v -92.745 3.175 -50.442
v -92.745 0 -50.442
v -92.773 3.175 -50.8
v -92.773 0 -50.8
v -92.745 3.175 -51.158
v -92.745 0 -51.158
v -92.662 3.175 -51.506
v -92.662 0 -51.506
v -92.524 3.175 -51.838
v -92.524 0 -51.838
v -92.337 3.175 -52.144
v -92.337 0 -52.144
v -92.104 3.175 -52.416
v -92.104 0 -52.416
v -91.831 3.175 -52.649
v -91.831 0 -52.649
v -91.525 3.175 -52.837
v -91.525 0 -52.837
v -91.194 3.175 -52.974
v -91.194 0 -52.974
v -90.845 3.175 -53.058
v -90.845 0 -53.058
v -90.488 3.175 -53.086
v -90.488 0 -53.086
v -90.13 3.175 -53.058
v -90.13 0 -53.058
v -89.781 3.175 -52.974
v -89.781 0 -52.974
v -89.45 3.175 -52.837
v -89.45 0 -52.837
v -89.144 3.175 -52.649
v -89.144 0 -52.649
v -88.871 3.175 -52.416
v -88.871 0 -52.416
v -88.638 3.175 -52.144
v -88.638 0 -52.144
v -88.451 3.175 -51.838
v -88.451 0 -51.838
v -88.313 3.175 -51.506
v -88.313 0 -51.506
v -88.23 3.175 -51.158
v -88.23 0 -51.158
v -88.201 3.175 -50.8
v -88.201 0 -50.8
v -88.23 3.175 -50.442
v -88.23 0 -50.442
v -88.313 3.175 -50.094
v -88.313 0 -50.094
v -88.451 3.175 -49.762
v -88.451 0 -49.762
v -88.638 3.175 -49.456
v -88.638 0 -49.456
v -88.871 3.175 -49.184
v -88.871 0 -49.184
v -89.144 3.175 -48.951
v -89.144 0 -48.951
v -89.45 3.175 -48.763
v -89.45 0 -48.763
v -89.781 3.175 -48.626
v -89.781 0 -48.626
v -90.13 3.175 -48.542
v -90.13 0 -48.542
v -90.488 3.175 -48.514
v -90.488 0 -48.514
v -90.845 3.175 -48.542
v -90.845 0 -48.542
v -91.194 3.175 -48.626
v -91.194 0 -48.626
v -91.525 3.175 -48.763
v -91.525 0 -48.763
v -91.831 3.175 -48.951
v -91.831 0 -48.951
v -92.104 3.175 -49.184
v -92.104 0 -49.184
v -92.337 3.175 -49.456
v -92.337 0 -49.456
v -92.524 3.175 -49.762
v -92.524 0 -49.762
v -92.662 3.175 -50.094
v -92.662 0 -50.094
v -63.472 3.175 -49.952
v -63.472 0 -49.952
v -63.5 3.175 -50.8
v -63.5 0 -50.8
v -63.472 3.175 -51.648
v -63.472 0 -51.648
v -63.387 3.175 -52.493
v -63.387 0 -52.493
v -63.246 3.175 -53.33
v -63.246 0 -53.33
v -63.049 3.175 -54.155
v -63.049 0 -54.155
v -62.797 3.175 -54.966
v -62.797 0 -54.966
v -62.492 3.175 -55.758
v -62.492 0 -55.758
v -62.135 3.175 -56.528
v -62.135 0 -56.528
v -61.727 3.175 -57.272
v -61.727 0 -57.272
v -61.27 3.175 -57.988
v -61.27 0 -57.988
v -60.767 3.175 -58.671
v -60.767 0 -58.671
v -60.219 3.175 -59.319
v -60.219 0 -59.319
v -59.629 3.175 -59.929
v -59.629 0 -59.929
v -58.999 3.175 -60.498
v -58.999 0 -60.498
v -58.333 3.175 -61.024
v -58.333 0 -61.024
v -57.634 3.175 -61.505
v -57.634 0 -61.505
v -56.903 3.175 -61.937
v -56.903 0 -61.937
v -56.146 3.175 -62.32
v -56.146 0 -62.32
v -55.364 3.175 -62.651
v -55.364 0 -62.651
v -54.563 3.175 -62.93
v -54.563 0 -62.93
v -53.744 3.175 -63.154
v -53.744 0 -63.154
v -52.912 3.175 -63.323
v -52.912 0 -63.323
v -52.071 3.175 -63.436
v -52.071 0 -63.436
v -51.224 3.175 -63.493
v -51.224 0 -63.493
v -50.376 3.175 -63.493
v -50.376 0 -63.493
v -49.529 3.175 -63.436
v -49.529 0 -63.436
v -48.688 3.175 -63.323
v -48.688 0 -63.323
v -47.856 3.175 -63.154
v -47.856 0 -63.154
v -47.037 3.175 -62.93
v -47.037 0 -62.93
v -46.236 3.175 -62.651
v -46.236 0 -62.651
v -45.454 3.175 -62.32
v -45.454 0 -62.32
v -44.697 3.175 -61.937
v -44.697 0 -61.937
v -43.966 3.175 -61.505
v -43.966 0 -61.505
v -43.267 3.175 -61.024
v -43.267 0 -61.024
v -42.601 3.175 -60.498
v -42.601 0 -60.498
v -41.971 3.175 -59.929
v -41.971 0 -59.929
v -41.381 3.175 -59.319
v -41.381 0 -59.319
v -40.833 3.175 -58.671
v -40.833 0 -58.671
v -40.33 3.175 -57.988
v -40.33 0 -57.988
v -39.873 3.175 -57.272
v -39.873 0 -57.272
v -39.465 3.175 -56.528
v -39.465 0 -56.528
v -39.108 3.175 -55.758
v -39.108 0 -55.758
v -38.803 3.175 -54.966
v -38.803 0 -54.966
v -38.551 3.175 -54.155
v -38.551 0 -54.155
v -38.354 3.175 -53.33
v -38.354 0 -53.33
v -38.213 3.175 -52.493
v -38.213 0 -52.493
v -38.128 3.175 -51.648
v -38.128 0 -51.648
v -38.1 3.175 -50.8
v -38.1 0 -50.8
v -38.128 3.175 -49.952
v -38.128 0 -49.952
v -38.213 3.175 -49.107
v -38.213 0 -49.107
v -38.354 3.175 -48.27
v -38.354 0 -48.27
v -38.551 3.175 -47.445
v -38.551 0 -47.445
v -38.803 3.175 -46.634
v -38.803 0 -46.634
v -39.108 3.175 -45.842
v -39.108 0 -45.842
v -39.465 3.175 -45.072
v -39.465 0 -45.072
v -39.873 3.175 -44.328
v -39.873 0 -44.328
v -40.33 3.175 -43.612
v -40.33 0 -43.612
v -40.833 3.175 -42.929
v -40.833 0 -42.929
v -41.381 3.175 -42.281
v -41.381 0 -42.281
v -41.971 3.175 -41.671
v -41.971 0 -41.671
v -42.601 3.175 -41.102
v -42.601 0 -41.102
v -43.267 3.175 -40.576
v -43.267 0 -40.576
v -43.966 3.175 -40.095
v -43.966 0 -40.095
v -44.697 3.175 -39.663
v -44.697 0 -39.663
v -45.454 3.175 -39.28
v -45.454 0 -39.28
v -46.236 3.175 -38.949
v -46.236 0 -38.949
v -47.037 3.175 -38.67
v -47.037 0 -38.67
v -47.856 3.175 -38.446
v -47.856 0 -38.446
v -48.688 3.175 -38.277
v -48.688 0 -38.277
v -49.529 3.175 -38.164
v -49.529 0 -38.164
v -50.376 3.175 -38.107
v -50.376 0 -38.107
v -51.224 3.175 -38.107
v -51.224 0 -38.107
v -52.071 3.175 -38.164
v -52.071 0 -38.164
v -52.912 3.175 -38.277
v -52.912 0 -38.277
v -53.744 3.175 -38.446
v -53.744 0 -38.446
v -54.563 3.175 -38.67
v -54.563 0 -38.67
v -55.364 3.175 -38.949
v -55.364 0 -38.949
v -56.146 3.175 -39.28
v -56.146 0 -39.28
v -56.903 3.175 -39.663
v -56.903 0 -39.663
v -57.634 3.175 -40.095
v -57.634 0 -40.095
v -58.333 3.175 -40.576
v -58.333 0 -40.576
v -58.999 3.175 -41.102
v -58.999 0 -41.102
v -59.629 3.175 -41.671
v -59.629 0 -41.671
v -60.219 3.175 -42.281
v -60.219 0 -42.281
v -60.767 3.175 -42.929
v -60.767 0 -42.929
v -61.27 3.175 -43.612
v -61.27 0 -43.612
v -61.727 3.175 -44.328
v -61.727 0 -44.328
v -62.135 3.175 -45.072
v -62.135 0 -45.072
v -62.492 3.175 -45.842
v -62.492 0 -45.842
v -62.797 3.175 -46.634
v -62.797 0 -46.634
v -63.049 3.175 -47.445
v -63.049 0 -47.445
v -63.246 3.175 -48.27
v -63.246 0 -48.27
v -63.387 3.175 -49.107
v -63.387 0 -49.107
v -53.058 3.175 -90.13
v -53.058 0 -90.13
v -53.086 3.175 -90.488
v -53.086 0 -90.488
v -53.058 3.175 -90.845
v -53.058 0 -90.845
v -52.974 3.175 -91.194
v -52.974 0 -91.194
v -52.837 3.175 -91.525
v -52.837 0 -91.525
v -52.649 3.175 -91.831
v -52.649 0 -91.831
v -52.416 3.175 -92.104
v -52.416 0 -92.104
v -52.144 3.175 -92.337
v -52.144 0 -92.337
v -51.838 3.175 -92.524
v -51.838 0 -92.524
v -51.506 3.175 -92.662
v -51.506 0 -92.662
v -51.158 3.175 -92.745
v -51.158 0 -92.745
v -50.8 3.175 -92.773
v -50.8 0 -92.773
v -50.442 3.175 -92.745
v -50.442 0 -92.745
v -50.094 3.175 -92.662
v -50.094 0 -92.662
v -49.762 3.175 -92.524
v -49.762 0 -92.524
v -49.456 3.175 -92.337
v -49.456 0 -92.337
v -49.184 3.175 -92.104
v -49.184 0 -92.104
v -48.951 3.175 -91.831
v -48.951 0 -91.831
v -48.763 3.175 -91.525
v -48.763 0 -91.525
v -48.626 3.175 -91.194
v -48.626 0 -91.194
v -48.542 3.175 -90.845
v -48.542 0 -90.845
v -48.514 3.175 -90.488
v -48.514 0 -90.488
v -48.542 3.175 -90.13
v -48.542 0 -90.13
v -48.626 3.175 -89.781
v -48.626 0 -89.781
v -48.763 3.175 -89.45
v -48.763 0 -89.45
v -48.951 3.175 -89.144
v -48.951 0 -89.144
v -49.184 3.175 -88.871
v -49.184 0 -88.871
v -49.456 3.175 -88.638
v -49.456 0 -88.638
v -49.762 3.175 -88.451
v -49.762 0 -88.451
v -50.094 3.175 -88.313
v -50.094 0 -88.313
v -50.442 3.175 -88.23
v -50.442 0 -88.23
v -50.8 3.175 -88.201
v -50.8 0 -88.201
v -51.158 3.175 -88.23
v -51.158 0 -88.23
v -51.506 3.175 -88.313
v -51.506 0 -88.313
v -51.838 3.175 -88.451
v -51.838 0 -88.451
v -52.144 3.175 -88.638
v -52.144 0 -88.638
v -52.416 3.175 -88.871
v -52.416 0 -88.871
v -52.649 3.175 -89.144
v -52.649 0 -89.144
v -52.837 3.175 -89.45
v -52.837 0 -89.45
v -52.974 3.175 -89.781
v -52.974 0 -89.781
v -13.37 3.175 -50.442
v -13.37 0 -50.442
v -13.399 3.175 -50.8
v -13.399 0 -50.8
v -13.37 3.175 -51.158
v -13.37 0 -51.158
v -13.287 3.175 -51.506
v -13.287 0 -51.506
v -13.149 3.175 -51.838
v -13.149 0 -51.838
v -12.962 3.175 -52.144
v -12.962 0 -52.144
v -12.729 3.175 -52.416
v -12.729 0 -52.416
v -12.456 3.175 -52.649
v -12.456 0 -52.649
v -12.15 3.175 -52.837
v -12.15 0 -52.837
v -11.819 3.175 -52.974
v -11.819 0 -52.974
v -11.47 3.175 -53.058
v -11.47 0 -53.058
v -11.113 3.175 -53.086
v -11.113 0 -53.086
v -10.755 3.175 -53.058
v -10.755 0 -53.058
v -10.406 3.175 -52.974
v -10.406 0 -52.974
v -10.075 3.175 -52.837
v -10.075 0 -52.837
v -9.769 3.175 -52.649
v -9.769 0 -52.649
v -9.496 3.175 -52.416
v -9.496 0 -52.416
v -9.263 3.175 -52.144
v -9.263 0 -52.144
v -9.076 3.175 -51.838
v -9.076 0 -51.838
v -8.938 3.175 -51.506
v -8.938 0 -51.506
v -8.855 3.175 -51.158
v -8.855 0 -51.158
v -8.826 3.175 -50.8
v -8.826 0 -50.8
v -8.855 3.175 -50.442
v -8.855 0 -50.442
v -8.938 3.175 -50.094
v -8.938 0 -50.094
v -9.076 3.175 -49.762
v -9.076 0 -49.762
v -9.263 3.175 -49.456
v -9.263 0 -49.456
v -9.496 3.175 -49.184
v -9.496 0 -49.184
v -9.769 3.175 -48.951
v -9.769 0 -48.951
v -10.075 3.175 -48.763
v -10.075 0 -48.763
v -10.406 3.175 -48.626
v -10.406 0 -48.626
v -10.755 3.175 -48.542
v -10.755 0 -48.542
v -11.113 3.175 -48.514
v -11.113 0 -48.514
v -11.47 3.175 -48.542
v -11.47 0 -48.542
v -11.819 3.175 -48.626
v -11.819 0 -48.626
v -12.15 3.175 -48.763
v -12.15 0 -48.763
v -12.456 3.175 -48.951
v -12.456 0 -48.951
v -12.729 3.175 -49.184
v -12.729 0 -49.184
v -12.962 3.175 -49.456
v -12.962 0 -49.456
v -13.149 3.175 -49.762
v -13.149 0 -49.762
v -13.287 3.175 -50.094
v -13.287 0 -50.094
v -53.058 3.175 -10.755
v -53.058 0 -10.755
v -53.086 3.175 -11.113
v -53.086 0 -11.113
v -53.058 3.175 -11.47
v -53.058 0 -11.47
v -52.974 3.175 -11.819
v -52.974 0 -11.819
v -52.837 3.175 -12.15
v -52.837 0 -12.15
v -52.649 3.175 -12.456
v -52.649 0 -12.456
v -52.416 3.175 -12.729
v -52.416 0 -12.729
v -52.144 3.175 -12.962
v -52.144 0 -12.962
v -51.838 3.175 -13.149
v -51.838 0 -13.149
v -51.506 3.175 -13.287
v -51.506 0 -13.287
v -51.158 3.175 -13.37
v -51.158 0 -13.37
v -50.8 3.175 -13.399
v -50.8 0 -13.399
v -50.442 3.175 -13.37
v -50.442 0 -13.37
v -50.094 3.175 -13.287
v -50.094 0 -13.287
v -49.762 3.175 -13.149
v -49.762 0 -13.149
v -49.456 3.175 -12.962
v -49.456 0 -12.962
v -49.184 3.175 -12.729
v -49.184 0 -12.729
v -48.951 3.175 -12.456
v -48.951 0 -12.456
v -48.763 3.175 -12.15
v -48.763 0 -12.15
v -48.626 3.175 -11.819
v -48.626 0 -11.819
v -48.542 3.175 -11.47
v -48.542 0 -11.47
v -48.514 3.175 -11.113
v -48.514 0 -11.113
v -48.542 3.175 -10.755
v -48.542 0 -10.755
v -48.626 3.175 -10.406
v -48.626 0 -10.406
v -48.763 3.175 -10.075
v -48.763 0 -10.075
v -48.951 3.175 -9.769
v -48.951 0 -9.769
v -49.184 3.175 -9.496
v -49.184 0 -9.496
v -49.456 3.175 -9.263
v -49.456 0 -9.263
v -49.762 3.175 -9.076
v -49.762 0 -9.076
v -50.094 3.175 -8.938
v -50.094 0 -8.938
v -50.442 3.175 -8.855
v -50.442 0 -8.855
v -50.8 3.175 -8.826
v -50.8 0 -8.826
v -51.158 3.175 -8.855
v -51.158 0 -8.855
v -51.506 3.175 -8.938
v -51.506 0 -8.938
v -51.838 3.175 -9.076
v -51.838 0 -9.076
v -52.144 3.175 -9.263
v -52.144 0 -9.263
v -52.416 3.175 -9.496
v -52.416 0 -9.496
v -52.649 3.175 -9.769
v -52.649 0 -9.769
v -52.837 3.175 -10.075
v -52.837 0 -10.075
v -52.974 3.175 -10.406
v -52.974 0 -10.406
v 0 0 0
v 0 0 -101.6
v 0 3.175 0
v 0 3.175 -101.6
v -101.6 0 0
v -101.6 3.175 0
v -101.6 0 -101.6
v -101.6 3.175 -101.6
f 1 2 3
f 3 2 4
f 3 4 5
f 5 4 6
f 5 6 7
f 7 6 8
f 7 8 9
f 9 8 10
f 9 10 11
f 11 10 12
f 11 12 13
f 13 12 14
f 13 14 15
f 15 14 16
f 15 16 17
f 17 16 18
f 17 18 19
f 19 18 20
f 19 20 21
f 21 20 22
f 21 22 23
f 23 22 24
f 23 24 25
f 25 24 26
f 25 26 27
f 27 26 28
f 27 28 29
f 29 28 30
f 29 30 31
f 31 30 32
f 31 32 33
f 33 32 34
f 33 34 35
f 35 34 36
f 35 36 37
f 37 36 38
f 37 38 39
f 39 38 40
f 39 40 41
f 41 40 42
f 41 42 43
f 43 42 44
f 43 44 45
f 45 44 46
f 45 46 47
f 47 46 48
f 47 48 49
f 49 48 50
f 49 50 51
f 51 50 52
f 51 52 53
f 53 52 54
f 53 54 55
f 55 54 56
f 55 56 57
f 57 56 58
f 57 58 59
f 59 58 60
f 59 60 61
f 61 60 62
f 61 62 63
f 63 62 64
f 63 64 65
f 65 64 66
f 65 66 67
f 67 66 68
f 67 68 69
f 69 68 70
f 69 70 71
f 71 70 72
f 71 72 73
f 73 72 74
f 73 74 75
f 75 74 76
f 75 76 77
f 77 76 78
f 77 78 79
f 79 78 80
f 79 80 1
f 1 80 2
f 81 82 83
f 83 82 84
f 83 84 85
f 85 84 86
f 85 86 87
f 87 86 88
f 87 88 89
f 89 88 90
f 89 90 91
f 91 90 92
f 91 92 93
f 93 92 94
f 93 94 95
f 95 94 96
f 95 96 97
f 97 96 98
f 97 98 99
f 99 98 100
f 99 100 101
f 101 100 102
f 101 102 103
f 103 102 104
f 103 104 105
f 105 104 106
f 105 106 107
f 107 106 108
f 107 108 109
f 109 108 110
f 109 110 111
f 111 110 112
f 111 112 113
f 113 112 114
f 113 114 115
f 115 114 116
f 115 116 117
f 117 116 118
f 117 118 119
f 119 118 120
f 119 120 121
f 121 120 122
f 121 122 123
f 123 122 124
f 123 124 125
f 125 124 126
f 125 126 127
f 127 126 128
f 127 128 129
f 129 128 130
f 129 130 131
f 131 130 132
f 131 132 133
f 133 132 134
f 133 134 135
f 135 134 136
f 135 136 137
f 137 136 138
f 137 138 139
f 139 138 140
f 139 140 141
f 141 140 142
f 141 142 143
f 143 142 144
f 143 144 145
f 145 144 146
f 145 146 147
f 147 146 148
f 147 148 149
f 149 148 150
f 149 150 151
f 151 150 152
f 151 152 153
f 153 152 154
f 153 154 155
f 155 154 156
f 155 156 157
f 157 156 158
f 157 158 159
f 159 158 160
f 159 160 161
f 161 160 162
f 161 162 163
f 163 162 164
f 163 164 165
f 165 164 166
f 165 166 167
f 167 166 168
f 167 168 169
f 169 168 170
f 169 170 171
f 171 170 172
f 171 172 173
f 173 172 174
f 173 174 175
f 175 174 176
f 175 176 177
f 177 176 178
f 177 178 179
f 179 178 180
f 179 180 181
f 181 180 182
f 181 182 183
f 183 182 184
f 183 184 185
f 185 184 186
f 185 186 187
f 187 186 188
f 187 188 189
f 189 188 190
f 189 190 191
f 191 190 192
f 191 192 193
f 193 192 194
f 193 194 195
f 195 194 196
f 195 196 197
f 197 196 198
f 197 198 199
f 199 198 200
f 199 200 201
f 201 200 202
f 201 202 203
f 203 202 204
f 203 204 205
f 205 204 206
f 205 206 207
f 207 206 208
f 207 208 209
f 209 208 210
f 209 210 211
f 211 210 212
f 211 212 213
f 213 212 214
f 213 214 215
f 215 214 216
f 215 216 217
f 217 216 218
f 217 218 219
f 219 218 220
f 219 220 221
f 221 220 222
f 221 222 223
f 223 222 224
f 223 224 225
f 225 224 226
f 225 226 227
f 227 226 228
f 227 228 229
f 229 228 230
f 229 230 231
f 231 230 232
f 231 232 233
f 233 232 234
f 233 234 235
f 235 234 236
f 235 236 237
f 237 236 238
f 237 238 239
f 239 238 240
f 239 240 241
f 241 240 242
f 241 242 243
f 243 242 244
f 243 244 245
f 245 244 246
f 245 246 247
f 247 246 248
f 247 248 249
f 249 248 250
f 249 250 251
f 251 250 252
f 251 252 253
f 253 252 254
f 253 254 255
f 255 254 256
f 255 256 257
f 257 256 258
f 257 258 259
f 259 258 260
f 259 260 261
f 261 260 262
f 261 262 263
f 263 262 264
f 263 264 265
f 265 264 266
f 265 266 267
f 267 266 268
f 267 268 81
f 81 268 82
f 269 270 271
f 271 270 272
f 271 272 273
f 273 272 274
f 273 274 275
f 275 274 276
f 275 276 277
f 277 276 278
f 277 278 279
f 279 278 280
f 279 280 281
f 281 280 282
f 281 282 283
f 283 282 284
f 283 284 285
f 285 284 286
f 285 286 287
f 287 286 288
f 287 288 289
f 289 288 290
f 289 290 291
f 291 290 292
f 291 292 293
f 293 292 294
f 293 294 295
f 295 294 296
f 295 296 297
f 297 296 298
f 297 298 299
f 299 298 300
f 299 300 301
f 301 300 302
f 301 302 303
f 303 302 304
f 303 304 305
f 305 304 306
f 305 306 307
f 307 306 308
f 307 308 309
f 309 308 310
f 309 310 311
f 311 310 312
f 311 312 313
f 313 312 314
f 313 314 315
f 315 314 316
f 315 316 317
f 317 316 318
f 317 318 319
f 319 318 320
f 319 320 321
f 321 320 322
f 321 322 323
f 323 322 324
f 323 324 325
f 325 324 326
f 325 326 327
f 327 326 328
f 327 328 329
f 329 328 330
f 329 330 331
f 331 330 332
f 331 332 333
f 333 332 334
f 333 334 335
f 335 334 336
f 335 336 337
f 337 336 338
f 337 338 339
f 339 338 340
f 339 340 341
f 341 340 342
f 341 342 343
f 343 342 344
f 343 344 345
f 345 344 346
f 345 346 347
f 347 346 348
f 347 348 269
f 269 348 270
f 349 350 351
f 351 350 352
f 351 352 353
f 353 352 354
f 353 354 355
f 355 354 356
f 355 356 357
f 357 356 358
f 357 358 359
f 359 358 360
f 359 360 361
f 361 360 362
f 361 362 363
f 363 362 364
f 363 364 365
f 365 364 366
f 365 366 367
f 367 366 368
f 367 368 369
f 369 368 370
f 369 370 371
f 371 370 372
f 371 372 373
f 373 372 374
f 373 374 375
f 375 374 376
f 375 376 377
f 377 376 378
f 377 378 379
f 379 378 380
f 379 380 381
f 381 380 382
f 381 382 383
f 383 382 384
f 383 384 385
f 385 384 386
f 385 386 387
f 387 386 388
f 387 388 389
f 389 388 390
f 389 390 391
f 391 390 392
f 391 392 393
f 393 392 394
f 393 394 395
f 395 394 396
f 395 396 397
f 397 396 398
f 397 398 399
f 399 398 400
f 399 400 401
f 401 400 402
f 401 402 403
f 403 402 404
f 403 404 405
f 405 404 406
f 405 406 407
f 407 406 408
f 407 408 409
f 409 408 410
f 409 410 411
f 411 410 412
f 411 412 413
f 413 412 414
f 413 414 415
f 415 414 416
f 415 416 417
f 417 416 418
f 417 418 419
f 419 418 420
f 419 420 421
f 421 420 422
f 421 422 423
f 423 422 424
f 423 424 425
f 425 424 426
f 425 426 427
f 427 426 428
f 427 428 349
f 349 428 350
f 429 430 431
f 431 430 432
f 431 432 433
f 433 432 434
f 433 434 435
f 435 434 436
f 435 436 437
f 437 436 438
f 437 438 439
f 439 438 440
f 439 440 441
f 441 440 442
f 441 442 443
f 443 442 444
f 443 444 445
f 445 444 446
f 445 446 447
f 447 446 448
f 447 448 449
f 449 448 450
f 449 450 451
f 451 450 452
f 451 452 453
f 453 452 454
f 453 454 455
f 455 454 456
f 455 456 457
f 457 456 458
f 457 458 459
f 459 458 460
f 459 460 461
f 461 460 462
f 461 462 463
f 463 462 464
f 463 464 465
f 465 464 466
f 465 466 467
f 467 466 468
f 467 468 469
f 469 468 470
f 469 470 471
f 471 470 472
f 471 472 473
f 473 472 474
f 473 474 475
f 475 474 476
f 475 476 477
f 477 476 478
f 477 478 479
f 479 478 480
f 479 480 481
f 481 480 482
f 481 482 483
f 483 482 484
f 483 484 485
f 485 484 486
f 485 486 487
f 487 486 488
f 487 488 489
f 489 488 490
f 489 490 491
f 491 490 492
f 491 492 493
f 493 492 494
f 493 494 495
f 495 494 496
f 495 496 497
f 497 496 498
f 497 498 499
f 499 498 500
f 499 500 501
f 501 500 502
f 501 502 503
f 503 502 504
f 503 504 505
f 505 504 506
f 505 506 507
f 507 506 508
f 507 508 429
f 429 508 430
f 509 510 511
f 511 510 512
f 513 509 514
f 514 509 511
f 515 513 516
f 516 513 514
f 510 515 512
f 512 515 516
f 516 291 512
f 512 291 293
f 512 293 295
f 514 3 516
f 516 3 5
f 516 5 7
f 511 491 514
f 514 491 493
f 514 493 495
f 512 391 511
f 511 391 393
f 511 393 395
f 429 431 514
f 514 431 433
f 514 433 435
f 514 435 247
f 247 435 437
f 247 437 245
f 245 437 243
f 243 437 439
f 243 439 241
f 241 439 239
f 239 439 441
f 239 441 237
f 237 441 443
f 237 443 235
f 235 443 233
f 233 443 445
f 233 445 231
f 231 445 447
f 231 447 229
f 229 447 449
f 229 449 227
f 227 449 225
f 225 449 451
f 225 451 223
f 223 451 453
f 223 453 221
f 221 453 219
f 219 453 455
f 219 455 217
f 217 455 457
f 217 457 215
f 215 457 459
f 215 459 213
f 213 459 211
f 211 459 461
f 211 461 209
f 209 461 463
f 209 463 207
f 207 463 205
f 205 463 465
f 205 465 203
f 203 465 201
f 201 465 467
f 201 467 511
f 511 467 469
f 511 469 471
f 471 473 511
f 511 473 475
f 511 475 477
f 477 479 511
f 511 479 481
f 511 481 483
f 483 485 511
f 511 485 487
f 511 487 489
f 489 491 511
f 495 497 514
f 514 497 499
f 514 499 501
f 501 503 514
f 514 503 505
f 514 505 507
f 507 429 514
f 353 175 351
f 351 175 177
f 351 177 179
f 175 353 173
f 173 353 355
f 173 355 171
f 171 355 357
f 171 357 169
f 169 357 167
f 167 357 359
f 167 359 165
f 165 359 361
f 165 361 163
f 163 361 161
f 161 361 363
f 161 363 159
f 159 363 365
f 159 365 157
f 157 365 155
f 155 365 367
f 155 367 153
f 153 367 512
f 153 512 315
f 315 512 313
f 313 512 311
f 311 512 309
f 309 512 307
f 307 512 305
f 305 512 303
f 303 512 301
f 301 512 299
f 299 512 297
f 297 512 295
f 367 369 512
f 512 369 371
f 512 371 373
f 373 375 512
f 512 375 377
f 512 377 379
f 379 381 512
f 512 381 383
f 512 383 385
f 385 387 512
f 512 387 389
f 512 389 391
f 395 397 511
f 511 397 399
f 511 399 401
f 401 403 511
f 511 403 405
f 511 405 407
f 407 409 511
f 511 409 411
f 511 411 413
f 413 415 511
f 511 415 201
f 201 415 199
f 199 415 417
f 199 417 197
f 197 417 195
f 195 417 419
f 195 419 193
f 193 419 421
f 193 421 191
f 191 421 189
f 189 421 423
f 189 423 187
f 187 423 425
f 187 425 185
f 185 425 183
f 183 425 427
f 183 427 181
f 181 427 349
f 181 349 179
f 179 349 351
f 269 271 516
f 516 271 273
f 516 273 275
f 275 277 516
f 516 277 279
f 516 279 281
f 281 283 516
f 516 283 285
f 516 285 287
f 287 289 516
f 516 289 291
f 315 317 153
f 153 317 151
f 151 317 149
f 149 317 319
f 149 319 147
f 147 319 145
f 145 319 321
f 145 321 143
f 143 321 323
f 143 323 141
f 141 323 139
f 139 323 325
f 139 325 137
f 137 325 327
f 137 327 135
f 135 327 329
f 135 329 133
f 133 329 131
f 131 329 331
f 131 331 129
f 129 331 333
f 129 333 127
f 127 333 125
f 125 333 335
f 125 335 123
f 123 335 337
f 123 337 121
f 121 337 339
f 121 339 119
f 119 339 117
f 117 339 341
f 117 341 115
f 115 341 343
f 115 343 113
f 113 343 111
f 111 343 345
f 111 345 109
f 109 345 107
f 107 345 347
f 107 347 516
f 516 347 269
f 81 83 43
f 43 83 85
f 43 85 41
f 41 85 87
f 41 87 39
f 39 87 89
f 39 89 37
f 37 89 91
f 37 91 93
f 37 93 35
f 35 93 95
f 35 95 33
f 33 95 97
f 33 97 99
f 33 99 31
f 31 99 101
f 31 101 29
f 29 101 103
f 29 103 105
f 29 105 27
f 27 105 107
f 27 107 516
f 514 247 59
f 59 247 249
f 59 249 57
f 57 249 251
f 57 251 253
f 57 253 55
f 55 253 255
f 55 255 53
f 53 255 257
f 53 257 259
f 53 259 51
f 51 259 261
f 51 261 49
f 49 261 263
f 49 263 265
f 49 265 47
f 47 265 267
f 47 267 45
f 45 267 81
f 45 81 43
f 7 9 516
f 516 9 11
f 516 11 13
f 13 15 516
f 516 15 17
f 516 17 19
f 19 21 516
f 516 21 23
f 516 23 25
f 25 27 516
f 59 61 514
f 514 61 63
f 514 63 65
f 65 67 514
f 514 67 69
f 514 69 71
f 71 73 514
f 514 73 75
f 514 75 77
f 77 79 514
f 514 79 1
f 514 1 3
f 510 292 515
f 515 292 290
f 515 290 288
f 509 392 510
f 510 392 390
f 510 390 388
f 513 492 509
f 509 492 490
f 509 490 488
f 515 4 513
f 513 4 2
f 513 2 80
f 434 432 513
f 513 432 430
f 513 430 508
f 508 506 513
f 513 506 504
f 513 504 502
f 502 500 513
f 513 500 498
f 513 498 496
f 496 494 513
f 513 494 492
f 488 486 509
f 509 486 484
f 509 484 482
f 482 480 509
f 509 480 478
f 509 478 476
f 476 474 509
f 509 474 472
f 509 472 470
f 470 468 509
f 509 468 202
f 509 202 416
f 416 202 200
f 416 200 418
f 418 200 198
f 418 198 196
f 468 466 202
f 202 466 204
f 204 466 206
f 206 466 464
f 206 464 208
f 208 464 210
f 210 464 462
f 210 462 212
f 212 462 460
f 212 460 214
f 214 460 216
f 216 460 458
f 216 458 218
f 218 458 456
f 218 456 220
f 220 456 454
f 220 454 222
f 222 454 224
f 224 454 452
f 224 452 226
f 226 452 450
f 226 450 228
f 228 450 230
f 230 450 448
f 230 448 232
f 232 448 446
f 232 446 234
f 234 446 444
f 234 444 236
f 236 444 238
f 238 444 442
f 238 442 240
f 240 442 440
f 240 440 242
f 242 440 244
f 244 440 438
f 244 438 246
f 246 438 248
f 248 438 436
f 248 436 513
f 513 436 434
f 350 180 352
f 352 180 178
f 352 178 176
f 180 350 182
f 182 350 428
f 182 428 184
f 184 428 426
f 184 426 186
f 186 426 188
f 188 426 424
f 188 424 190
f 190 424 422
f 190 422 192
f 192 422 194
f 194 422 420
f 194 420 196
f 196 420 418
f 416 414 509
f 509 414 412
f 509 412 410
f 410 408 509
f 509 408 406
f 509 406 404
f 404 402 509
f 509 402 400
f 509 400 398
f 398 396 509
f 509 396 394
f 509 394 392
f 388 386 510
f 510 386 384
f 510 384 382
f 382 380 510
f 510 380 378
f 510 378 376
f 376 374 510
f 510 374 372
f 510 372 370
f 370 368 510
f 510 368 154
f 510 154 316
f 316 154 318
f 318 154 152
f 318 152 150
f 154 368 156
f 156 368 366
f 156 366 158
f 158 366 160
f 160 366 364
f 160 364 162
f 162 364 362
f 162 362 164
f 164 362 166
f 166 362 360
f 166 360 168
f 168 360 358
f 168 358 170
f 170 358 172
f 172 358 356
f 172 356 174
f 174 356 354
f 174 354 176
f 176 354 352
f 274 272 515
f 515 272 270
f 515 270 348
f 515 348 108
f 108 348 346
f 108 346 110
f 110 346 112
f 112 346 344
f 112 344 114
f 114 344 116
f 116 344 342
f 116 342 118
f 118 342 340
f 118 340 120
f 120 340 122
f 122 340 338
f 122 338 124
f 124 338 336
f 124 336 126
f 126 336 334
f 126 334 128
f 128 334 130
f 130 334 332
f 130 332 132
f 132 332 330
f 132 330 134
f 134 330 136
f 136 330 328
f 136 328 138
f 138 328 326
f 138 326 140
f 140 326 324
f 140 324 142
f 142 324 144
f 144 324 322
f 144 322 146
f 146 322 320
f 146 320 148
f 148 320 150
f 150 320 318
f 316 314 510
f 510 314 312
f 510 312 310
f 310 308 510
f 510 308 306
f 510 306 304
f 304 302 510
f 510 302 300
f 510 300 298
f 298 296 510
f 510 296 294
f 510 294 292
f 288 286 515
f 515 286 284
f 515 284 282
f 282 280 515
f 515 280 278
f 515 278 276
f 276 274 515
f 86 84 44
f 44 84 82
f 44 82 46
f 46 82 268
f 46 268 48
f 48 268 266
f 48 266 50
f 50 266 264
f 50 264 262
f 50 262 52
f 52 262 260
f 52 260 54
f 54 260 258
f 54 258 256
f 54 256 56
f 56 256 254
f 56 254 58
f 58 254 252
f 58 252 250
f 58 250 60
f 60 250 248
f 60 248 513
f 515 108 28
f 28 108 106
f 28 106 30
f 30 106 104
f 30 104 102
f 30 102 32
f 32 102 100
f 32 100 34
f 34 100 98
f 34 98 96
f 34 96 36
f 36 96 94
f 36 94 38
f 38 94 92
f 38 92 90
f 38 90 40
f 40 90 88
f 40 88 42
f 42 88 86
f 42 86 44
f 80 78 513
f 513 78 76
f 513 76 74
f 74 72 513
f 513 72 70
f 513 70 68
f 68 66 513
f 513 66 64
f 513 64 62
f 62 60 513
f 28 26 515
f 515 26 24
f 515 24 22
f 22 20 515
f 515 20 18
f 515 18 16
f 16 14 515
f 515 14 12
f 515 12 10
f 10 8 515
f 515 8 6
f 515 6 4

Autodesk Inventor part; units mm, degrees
ref_plane "YZ Plane" through (0, 0, 0) normal (1, 0, 0) x (0, 1, 0)
ref_plane "XZ Plane" through (0, 0, 0) normal (0, 1, 0) x (-1, 0, 0)
ref_plane "XY Plane" through (0, 0, 0) normal (0, 0, 1) x (1, 0, 0)
sketch "Sketch1" plane through (0, 0, 0) normal (0, 1, 0) x (-1, 0, 0)
  line L0 (0, 0) -> (101.6, 0)
  line L1 (101.6, 0) -> (101.6, -101.6)
  line L2 (101.6, -101.6) -> (0, -101.6)
  line L3 (0, -101.6) -> (0, 0)
  circle A0 centre (90.4875, -50.8) radius 2.286
  circle A1 centre (50.8, -50.8) radius 12.7
  circle A2 centre (50.8, -90.4875) radius 2.286
  circle A3 centre (11.1125, -50.8) radius 2.286
  circle A4 centre (50.8, -11.1125) radius 2.286
  point P0 (101.6, -50.8)
  point P1 (50.8, -101.6)
  dimension "d0" = 101.6
  dimension "d1" = 101.6
  dimension "d2" = 4.572
  dimension "d3" = 11.1125
  dimension "d4" = 25.4
  dimension "d7" = 360
extrude "Extrusion1" add sketch "Sketch1" along normal blind 3.175
properties part number "Top plate" material "Acetal Resin, White"
